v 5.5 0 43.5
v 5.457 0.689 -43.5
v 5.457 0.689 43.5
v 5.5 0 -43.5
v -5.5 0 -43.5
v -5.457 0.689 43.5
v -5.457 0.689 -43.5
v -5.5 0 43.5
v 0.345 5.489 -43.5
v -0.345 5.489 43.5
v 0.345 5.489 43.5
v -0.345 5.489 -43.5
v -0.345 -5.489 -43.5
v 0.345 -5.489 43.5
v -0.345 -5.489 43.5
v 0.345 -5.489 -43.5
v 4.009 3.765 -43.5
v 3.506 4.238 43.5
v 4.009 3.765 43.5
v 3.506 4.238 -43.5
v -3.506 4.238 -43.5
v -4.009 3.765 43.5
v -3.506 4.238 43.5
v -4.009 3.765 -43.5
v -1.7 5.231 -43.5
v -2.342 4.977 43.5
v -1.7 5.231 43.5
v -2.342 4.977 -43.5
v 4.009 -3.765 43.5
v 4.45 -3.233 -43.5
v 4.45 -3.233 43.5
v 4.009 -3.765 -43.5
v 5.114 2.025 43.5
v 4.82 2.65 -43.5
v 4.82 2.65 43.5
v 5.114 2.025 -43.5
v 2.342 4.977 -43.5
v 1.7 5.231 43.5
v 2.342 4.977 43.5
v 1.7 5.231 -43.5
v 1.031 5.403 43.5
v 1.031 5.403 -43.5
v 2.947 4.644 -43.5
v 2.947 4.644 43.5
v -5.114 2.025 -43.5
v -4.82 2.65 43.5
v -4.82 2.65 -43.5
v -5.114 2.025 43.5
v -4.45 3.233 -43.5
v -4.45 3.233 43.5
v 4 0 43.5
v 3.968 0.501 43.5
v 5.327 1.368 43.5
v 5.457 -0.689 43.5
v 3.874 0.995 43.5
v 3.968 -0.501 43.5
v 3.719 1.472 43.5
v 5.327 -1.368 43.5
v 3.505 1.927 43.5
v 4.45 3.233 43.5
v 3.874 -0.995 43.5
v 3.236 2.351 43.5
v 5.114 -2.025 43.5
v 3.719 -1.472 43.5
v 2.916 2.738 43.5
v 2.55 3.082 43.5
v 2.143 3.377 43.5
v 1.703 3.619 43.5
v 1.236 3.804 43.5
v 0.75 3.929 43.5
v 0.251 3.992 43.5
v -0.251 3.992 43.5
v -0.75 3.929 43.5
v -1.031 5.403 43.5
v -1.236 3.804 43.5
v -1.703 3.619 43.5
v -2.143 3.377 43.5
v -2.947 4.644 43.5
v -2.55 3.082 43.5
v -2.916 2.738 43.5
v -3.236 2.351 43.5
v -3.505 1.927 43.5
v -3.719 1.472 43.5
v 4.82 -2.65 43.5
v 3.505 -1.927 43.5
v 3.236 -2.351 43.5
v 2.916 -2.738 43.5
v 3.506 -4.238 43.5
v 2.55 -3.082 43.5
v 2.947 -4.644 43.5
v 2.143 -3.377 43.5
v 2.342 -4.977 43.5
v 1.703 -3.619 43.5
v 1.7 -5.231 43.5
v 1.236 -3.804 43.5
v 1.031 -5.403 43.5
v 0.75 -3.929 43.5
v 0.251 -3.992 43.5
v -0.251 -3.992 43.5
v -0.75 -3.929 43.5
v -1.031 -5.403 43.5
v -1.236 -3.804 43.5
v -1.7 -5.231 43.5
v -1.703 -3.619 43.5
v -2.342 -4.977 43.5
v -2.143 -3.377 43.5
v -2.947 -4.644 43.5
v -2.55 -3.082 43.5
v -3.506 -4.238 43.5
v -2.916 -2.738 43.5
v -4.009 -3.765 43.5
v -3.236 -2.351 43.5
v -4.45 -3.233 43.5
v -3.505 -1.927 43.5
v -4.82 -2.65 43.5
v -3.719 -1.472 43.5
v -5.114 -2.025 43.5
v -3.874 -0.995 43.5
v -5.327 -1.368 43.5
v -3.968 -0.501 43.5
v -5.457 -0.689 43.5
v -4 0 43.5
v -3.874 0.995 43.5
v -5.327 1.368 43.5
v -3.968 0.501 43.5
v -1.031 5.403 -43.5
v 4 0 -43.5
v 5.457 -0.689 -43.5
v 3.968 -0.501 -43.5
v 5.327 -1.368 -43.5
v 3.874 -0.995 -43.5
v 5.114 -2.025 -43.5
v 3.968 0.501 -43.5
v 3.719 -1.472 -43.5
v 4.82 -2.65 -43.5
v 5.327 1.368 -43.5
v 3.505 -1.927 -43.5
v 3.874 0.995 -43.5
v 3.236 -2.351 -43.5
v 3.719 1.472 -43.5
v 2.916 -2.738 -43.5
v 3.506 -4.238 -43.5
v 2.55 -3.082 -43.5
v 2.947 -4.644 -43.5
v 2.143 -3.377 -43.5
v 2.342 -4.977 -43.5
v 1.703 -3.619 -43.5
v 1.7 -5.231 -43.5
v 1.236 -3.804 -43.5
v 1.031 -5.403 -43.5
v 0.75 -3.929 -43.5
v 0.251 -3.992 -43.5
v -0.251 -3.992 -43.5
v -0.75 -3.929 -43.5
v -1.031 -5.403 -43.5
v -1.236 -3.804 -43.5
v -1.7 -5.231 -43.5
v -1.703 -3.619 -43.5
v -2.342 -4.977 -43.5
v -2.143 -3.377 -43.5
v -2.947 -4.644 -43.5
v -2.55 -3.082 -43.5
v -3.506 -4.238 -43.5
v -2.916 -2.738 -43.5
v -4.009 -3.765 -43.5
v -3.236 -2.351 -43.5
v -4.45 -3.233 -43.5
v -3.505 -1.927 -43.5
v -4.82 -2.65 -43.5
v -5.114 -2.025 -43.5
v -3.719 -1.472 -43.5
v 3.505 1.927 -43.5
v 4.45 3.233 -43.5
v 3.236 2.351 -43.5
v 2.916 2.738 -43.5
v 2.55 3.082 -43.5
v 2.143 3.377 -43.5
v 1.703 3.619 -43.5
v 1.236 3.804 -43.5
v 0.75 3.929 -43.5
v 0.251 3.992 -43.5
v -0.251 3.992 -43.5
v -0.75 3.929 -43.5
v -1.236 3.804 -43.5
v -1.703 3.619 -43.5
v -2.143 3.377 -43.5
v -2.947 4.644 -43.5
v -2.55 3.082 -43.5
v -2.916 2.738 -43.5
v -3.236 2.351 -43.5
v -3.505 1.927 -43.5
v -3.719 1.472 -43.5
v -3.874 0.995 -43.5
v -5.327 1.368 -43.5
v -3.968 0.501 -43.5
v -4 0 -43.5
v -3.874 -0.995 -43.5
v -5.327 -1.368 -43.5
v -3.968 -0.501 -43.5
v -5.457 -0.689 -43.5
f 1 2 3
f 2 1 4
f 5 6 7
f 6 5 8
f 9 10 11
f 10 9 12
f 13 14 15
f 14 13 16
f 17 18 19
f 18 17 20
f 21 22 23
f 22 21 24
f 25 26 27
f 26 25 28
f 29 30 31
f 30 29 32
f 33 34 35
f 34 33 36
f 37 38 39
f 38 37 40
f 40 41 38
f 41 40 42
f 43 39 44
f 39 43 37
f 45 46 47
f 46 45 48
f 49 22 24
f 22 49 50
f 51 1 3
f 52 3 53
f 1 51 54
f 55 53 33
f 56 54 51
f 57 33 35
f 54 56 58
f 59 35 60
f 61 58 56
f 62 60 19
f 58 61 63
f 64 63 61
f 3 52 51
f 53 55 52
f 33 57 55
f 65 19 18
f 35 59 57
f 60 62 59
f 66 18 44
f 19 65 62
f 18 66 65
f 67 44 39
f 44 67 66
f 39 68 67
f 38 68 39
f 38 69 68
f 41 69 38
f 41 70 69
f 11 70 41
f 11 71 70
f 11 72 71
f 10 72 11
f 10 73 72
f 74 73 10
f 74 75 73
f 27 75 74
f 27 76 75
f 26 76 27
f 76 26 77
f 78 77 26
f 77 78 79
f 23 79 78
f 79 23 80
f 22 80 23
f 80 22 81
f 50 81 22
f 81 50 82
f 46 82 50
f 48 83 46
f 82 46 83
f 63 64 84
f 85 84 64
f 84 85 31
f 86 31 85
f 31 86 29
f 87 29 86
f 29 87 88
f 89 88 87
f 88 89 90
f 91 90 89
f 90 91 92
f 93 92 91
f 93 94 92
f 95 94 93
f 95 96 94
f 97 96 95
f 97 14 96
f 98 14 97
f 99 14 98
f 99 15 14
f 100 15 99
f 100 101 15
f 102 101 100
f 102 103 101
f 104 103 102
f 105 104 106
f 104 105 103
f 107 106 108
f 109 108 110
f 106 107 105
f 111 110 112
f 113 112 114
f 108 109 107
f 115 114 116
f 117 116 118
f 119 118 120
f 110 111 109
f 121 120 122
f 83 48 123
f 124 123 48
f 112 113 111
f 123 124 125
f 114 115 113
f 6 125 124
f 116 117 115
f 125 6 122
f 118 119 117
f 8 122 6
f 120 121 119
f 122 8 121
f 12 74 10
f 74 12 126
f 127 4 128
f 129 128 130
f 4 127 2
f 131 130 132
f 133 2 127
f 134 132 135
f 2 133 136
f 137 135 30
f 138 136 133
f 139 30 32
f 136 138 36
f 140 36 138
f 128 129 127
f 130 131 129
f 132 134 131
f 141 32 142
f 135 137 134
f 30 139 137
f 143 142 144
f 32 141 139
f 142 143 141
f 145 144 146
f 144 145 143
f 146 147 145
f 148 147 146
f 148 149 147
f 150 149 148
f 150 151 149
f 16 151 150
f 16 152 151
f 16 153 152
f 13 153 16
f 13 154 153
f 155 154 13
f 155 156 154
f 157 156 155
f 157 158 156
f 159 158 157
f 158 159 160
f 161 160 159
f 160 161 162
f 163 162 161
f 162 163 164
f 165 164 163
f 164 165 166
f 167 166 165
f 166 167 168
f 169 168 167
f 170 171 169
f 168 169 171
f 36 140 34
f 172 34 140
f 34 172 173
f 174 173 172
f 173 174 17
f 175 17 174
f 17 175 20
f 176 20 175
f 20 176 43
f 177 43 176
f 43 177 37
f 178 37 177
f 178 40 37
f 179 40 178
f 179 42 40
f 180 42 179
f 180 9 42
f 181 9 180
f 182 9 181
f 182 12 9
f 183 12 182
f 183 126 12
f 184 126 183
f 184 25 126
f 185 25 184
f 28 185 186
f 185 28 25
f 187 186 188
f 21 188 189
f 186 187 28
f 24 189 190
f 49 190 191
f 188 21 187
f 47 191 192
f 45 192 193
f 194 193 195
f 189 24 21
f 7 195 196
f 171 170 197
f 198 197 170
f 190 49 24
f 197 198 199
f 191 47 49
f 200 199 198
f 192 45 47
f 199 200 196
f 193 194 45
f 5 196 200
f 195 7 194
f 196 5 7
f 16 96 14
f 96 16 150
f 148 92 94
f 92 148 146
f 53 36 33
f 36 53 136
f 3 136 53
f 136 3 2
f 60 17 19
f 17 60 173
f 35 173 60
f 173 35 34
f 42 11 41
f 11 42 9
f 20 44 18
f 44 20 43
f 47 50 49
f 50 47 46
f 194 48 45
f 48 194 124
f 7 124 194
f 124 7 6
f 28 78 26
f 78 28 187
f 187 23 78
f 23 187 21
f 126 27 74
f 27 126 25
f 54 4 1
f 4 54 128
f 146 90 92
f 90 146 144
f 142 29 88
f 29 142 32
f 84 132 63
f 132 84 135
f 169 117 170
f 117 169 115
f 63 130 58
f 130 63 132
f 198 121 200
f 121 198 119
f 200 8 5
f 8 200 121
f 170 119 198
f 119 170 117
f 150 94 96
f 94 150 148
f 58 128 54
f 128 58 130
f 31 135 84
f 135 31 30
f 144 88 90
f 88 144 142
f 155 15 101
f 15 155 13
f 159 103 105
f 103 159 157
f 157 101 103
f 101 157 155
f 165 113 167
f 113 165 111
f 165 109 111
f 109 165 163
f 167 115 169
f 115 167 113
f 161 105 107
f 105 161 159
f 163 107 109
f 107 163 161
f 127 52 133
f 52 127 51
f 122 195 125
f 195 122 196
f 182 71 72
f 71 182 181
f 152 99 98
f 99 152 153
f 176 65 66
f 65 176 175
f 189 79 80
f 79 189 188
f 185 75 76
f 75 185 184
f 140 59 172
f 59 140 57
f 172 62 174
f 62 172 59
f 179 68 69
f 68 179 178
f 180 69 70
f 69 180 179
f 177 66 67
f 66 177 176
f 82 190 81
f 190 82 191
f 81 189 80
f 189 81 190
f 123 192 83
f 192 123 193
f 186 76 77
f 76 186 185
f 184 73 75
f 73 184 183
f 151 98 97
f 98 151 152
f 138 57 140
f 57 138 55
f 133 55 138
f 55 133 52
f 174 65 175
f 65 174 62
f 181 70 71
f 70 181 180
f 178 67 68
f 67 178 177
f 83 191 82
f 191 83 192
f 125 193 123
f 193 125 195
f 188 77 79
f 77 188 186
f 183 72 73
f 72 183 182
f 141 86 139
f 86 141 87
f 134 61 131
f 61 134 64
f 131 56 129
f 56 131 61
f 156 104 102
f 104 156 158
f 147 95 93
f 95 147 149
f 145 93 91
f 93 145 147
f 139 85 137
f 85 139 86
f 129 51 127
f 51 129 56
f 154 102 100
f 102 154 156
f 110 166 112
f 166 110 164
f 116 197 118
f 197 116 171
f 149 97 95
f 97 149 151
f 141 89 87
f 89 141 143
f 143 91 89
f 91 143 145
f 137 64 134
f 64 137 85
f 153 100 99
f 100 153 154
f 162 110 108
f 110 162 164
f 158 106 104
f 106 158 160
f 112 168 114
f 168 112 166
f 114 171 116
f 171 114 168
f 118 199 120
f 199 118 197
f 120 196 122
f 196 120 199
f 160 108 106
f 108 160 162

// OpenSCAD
$fn = 50;


difference() {
	union() {
		translate(v = [0, 0, -43.5000000000]) {
			cylinder(h = 87, r = 5.5000000000);
		}
	}
	union() {
		translate(v = [0, 0, -100.0000000000]) {
			cylinder(h = 200, r = 4);
		}
	}
}
